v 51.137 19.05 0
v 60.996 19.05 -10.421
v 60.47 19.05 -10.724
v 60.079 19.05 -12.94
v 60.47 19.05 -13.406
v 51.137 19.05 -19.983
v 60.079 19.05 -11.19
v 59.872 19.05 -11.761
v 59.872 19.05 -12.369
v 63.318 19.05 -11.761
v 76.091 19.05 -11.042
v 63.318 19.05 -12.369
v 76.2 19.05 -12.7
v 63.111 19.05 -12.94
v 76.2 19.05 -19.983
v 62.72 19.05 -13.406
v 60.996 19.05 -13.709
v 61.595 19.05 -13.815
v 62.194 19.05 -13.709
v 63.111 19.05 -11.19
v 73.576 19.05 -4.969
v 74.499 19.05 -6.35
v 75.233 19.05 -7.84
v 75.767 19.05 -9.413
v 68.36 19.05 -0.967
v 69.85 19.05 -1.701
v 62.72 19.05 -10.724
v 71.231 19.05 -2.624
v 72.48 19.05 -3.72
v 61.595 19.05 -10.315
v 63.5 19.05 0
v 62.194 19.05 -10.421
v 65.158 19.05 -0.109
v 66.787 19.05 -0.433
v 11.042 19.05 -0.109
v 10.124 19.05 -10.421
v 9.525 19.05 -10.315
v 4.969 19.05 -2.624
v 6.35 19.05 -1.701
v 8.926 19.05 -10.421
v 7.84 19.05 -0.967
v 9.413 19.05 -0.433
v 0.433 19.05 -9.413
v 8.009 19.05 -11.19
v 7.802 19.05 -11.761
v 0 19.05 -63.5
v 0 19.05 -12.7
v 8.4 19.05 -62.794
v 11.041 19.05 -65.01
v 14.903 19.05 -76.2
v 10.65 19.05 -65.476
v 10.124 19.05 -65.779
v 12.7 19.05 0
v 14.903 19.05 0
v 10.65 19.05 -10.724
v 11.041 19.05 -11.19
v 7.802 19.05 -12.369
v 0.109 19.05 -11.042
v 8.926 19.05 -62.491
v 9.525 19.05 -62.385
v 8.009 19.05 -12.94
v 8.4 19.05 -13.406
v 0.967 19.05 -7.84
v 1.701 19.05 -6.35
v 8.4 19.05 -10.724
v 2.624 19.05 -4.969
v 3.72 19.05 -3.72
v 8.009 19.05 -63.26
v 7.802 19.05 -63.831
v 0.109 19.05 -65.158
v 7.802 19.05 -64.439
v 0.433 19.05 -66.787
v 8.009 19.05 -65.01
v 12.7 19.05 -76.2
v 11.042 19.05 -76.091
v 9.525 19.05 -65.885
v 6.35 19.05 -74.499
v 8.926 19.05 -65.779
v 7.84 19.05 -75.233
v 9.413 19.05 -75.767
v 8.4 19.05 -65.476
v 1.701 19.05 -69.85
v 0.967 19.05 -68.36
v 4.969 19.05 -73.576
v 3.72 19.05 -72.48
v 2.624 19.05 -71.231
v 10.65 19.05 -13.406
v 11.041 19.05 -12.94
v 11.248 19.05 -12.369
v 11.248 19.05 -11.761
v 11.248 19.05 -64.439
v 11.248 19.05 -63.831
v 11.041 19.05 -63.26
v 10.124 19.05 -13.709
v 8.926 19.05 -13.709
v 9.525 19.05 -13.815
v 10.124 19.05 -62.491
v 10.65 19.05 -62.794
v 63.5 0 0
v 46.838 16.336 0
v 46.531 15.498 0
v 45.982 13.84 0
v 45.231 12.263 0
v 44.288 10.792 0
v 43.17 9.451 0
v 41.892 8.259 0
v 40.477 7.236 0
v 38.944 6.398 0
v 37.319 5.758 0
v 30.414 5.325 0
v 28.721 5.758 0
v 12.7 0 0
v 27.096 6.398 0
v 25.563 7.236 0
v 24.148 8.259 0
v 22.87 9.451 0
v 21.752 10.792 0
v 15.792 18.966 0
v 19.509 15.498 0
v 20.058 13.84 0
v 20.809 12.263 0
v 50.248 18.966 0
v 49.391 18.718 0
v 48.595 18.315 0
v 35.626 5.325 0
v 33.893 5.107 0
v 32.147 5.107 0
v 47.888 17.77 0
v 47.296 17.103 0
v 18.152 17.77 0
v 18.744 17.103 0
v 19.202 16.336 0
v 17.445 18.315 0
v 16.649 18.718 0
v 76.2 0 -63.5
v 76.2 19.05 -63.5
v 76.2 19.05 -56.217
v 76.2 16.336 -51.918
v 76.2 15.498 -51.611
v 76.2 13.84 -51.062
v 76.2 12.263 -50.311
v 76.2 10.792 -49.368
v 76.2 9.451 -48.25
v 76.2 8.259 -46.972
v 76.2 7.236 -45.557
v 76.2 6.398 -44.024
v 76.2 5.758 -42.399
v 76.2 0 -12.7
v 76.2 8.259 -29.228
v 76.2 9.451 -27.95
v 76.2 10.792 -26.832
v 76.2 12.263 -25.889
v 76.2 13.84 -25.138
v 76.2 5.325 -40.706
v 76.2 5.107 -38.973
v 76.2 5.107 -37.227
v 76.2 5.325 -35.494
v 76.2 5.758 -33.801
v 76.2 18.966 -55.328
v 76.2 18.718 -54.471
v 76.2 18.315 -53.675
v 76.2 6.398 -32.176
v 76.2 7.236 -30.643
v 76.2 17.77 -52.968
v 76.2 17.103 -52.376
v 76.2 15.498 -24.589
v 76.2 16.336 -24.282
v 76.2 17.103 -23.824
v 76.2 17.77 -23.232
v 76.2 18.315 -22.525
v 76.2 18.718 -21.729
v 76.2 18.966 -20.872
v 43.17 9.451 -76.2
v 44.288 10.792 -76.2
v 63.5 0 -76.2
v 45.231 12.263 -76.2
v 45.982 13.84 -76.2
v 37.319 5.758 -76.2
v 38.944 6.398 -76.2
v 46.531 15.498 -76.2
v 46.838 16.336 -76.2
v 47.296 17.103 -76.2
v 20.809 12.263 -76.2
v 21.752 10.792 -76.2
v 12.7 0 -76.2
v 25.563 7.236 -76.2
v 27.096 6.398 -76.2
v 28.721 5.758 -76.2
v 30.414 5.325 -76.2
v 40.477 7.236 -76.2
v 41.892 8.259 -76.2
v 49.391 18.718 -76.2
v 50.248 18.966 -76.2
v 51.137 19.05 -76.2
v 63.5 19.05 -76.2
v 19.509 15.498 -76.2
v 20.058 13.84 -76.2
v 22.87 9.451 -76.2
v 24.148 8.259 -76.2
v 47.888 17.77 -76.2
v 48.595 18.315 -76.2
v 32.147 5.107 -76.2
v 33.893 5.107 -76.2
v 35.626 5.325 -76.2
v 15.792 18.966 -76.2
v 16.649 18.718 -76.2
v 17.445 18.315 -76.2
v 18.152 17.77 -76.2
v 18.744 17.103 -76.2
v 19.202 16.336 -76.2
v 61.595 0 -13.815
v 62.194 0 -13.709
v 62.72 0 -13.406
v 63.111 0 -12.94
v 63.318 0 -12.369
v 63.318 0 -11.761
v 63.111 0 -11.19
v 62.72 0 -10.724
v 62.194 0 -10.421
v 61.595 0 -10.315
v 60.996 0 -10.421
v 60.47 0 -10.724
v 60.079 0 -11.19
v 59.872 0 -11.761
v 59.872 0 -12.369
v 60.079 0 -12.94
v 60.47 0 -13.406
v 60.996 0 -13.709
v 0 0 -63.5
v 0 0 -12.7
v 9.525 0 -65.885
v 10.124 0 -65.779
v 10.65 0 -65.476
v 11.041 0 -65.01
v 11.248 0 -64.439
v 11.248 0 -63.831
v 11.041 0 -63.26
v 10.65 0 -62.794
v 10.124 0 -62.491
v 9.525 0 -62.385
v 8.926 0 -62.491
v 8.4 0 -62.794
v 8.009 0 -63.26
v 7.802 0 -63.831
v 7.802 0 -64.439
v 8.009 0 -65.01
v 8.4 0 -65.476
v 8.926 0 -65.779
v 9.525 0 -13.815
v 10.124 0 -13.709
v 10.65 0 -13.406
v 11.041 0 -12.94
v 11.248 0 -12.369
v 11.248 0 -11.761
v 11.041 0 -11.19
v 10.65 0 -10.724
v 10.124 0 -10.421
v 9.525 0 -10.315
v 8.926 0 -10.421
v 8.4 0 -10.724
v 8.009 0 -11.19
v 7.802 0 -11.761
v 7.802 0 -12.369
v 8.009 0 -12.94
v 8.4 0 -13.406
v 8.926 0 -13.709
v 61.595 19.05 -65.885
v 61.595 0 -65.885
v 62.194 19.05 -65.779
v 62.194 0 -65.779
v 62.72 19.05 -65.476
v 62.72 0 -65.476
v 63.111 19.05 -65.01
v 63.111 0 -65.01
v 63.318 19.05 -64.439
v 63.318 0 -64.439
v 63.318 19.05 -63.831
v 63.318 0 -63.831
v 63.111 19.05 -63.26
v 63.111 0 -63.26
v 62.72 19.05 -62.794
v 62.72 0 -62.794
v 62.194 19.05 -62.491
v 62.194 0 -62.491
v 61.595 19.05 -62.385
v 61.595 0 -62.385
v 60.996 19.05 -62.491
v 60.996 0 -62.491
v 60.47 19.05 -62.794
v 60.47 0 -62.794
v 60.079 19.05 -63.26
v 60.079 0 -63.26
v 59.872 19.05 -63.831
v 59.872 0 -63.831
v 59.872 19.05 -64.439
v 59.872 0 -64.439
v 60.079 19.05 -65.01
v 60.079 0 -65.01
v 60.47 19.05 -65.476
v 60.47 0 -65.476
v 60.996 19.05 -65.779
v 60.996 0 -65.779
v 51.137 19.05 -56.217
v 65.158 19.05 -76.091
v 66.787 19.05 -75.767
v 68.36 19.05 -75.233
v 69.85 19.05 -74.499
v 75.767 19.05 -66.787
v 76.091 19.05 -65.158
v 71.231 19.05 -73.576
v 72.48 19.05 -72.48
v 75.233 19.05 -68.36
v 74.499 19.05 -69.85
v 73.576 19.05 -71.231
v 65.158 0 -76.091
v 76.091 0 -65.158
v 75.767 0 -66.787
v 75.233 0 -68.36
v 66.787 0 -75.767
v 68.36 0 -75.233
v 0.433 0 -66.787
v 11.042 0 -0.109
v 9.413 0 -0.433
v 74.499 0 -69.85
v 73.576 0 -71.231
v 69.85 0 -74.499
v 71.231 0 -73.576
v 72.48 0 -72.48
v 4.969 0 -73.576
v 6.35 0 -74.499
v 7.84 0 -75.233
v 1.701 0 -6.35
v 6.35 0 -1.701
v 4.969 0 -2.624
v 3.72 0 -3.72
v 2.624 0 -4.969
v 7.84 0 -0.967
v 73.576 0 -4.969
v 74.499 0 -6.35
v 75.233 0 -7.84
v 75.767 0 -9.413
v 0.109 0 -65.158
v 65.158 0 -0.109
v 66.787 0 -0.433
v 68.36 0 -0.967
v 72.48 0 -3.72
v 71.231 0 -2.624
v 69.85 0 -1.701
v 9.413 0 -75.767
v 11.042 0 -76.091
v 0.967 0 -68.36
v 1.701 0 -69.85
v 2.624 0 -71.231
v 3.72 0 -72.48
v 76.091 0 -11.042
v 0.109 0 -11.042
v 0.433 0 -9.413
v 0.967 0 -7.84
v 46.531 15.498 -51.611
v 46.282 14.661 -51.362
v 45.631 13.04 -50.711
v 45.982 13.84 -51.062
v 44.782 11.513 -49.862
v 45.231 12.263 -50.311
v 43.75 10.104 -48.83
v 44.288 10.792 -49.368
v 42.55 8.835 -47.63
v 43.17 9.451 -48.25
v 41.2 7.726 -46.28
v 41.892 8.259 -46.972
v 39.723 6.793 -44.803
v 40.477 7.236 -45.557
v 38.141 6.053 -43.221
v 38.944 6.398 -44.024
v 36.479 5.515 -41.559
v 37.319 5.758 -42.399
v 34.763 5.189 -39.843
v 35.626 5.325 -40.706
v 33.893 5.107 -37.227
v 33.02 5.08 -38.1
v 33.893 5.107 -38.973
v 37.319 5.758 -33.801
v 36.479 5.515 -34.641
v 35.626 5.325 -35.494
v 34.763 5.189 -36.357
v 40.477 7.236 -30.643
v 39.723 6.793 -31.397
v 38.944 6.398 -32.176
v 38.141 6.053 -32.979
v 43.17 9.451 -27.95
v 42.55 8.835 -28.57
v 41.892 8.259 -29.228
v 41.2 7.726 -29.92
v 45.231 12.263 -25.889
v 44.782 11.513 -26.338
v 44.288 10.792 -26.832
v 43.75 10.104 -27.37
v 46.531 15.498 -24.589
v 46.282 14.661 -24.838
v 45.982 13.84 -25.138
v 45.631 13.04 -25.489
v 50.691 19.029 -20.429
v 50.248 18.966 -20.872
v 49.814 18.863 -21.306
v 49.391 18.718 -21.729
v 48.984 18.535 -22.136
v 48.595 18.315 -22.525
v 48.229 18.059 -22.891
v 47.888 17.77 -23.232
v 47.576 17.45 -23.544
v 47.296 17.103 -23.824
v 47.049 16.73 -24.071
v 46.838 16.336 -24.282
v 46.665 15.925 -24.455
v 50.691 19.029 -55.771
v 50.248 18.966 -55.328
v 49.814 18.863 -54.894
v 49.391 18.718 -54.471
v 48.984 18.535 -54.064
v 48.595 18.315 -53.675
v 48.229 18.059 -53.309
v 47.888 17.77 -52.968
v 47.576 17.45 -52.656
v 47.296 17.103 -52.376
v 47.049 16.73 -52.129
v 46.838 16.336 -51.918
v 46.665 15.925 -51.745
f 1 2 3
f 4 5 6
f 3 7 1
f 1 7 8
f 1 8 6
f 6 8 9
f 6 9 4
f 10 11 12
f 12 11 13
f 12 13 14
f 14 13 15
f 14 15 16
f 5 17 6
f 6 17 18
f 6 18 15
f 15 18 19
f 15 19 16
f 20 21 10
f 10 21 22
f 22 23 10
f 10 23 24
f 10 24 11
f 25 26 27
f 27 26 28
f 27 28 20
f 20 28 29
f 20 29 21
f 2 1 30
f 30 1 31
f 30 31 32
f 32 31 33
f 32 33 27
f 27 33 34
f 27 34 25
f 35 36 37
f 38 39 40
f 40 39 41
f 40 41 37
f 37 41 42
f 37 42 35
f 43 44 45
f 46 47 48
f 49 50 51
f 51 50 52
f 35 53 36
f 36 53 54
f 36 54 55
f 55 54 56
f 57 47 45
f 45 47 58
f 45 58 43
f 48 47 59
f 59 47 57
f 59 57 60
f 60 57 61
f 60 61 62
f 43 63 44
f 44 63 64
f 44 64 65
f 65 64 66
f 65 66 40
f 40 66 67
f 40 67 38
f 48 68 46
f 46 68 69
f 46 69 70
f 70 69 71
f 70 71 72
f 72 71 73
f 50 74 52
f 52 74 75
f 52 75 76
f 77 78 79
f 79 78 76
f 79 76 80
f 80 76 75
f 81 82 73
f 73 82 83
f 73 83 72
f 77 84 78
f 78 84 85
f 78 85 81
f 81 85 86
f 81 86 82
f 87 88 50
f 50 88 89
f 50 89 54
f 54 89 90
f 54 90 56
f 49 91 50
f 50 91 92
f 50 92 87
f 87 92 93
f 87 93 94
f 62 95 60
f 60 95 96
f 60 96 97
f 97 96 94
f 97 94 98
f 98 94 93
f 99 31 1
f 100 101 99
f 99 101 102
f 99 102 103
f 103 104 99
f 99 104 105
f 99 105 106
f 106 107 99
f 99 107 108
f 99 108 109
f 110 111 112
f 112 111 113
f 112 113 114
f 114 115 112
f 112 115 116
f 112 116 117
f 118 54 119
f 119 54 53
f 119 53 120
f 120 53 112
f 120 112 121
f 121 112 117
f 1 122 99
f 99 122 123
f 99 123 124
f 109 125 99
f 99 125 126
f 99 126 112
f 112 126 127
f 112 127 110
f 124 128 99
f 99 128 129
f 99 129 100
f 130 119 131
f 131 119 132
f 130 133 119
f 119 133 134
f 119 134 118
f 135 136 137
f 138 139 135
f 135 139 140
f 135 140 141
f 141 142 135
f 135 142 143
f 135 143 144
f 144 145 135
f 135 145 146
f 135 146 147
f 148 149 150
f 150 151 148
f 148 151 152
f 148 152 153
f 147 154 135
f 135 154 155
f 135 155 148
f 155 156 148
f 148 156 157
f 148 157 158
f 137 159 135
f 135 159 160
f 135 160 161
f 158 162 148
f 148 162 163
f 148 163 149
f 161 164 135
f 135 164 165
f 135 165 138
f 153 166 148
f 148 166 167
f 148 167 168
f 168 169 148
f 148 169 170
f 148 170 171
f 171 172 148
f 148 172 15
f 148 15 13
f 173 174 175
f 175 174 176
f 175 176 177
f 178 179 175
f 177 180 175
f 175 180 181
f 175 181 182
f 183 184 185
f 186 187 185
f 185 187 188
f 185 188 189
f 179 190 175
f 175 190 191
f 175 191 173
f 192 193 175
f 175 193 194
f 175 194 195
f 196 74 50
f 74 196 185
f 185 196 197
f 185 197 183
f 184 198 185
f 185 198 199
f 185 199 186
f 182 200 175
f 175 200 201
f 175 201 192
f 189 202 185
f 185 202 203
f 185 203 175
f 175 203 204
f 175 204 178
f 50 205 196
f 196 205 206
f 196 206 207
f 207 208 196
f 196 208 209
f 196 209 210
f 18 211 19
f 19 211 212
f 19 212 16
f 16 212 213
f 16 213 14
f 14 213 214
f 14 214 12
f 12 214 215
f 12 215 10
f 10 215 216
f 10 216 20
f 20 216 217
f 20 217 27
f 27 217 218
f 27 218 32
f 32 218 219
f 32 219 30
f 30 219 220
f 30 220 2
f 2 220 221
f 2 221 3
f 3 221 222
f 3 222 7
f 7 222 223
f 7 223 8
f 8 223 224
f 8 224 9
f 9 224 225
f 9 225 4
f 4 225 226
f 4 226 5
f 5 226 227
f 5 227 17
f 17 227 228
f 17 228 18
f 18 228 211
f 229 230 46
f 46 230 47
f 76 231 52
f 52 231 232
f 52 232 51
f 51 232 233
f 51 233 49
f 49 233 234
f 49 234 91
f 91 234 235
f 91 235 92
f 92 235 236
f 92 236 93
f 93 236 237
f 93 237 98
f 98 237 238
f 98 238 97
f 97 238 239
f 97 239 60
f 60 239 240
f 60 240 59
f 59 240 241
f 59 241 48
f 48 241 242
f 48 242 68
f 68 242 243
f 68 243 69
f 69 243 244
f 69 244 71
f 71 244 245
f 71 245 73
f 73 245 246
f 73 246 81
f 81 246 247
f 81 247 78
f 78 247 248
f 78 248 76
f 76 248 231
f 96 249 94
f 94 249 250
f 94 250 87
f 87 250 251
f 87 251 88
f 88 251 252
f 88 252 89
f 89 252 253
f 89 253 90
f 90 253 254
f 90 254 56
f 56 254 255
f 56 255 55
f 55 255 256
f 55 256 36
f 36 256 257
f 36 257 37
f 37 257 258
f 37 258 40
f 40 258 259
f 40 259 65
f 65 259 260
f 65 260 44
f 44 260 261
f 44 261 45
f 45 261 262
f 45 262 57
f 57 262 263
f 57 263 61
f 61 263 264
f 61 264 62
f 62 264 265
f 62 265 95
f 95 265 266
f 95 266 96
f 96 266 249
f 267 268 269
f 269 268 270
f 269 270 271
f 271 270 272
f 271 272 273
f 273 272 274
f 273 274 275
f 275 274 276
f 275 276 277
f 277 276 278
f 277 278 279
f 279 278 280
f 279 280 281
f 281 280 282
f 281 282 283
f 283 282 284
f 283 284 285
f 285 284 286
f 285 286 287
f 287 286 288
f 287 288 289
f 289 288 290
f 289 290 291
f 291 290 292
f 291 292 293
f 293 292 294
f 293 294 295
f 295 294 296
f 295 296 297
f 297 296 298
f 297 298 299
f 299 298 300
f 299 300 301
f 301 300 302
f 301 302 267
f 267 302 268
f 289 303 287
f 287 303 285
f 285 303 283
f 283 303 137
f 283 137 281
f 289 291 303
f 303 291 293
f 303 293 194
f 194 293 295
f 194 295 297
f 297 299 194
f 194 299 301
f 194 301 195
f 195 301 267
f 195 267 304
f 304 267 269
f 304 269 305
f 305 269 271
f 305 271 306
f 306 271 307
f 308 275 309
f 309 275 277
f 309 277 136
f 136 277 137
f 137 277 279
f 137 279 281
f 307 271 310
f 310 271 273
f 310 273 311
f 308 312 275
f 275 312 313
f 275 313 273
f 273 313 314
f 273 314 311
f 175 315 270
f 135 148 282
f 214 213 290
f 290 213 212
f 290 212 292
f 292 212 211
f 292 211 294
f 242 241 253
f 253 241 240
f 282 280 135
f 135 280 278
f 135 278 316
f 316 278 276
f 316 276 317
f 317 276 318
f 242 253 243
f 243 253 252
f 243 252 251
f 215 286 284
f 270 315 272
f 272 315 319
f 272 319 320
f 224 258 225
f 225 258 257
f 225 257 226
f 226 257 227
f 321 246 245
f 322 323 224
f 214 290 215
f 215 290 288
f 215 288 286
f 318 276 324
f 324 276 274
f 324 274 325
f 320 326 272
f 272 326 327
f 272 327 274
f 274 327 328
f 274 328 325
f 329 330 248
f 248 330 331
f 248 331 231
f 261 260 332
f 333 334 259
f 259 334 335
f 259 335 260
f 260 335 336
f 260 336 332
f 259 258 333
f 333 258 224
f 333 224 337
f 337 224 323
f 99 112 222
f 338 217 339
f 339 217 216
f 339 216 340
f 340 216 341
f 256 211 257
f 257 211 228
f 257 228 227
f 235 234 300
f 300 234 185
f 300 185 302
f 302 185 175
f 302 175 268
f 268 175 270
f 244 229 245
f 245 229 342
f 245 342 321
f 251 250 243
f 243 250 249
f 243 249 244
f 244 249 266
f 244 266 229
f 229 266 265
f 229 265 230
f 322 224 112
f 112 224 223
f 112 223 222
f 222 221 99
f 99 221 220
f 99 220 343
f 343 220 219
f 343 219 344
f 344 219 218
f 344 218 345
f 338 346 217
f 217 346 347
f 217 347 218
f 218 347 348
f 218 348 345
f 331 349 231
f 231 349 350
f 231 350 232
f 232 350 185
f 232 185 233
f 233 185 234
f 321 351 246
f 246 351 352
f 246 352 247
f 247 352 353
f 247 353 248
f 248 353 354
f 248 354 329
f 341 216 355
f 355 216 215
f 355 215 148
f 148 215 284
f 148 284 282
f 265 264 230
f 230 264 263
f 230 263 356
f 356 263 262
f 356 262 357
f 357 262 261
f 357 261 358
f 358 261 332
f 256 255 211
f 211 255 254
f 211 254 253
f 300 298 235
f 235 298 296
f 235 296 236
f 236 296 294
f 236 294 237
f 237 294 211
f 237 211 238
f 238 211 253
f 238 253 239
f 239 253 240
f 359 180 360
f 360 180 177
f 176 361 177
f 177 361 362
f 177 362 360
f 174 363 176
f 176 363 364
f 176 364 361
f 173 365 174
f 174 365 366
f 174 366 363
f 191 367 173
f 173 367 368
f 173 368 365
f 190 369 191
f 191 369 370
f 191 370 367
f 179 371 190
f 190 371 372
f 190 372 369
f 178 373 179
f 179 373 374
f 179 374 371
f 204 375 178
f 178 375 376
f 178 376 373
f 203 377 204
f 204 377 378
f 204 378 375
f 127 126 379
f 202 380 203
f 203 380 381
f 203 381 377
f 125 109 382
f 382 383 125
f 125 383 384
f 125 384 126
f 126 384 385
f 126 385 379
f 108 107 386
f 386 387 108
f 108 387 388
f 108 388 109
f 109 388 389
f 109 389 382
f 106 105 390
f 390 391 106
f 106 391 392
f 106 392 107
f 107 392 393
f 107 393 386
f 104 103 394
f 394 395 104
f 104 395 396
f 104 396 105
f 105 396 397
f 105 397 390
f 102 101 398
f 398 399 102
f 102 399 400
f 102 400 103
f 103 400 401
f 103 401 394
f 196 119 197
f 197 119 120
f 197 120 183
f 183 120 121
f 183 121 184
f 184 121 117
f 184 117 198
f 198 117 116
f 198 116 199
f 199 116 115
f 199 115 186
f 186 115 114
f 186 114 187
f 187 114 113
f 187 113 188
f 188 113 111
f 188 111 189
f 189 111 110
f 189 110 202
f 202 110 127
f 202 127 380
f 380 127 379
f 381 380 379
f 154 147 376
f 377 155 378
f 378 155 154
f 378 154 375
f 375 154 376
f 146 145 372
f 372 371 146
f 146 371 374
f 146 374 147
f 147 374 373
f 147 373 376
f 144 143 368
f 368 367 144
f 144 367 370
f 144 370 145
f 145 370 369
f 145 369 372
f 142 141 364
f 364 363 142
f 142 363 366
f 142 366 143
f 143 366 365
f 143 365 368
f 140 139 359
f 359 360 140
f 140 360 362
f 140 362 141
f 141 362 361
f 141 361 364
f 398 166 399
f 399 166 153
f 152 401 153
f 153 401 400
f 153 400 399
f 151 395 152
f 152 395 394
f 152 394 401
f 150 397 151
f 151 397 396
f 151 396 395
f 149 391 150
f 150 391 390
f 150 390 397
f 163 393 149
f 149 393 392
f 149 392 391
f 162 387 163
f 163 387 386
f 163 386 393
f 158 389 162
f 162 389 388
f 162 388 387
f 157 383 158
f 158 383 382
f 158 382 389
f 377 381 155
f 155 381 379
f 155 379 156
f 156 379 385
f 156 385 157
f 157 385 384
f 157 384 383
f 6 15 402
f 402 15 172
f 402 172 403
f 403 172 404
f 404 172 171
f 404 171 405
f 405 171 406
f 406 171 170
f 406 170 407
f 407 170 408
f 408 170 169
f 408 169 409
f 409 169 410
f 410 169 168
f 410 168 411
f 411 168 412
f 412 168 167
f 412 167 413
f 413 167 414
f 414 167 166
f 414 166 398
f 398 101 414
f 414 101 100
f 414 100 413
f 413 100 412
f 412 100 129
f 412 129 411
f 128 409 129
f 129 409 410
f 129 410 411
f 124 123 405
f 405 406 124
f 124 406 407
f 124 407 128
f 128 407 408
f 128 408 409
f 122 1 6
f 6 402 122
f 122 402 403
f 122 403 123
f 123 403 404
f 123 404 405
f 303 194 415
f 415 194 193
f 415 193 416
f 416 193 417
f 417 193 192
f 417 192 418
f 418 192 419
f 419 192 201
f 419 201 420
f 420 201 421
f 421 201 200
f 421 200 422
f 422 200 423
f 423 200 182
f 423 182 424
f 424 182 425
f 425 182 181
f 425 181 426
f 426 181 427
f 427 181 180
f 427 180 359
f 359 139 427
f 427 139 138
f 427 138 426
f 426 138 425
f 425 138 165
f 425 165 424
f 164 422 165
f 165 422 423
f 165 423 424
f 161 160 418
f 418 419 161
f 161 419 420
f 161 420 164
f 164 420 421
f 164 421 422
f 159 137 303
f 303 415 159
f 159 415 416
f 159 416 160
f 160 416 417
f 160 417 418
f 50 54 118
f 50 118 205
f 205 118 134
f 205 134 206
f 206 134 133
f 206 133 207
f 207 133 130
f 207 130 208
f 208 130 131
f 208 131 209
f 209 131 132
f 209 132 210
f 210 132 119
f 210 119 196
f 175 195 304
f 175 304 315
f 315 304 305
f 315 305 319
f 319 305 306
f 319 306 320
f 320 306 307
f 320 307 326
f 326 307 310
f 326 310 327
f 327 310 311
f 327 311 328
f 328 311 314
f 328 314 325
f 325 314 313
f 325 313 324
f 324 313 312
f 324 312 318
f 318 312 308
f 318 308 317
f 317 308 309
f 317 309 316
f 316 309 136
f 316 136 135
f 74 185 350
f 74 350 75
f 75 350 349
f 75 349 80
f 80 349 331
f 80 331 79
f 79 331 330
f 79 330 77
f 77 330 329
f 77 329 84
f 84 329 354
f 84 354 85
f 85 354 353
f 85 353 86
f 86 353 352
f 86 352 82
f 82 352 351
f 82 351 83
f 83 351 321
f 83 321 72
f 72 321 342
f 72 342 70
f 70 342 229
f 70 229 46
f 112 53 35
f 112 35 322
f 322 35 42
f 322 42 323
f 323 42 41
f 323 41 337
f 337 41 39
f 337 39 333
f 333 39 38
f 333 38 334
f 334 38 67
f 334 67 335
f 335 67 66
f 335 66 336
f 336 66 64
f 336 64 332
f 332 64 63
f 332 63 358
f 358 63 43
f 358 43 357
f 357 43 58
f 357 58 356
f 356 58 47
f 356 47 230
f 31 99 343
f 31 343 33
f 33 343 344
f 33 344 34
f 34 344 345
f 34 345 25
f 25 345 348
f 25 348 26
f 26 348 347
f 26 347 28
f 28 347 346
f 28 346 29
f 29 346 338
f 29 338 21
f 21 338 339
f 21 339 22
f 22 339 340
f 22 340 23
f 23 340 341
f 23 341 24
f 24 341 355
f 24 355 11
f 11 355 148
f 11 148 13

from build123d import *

# Parameters (mm, degrees)
SKETCH1_W           = 19.05
SKETCH1_H           = 76.2
SKETCH1_R           = 1.75
SKETCH1_W_2         = 29.21
SKETCH1_H_2         = 24.13
SKETCH1_H_3         = 27.94
BOSS_EXTRUDE2_DEPTH = 19.05
SKETCH3_R           = 13.97
CUT_EXTRUDE2_DEPTH  = 77.2
CUT_EXTRUDE3_REACH  = 78.2
SKETCH4_R           = 13.97
FILLET1_R           = 4.7625
FILLET2_R           = 12.7


with BuildPart() as part:
    # Sketch1 → Boss-Extrude2 (new body)
    with BuildSketch(Plane(origin=(0, 0, 0), x_dir=(1, 0, 0), z_dir=(0, 1, 0))):
        with Locations((9.525, 38.1)):
            Rectangle(SKETCH1_W, SKETCH1_H)
        with Locations((9.525, 12.065)):
            Circle(SKETCH1_R, mode=Mode.SUBTRACT)
        with Locations((9.525, 64.135)):
            Circle(SKETCH1_R, mode=Mode.SUBTRACT)
        Polygon((19.05, 76.2), (19.05, 0), (46.99, 0), (46.99, 24.13), (46.99, 52.07), (46.99, 76.2), align=None)
        with Locations((61.595, 64.135)):
            Rectangle(SKETCH1_W_2, SKETCH1_H_2)
        with Locations((61.595, 64.135)):
            Circle(SKETCH1_R, mode=Mode.SUBTRACT)
        with Locations((61.595, 38.1)):
            Rectangle(SKETCH1_W_2, SKETCH1_H_3)
        with Locations((61.595, 12.065)):
            Rectangle(SKETCH1_W_2, SKETCH1_H_2)
        with Locations((61.595, 12.065)):
            Circle(SKETCH1_R, mode=Mode.SUBTRACT)
    extrude(amount=BOSS_EXTRUDE2_DEPTH)

    # Sketch3 → Cut-Extrude2 (cut, through all)
    with BuildSketch(Plane.XY):
        with Locations((33.02, 19.05)):
            Circle(SKETCH3_R)
    extrude(amount=-CUT_EXTRUDE2_DEPTH, mode=Mode.SUBTRACT)

    # Sketch4 → Cut-Extrude3 (cut, up to next)
    with BuildSketch(Plane(origin=(76.2, 0, 0), x_dir=(0, 0, -1), z_dir=(1, 0, 0)), mode=Mode.PRIVATE) as cut_extrude3_sk1:
        with Locations((38.1, 19.05)):
            Circle(SKETCH4_R)
    cut_extrude3_tool1 = extrude(cut_extrude3_sk1.sketch, amount=-CUT_EXTRUDE3_REACH, mode=Mode.PRIVATE) & part.part
    add(cut_extrude3_tool1.solids().sort_by_distance((76.2, 19.05, -38.1))[0], mode=Mode.SUBTRACT)

    # Fillet1
    fillet1_edges = [part.edges().sort_by_distance(p)[0] for p in [
        (46.99, 19.05, -12.065),
        (61.595, 19.05, -24.13),
        (61.595, 19.05, -52.07),
        (46.99, 19.05, -64.135),
        (19.05, 19.05, -38.1),
    ]]
    fillet(fillet1_edges, radius=FILLET1_R)

    # Fillet2
    fillet2_edges = [part.edges().sort_by_distance(p)[0] for p in [
        (0, 9.525, 0),
        (0, 9.525, -76.2),
        (76.2, 9.525, -76.2),
        (76.2, 9.525, 0),
    ]]
    fillet(fillet2_edges, radius=FILLET2_R)


solid = part.part
